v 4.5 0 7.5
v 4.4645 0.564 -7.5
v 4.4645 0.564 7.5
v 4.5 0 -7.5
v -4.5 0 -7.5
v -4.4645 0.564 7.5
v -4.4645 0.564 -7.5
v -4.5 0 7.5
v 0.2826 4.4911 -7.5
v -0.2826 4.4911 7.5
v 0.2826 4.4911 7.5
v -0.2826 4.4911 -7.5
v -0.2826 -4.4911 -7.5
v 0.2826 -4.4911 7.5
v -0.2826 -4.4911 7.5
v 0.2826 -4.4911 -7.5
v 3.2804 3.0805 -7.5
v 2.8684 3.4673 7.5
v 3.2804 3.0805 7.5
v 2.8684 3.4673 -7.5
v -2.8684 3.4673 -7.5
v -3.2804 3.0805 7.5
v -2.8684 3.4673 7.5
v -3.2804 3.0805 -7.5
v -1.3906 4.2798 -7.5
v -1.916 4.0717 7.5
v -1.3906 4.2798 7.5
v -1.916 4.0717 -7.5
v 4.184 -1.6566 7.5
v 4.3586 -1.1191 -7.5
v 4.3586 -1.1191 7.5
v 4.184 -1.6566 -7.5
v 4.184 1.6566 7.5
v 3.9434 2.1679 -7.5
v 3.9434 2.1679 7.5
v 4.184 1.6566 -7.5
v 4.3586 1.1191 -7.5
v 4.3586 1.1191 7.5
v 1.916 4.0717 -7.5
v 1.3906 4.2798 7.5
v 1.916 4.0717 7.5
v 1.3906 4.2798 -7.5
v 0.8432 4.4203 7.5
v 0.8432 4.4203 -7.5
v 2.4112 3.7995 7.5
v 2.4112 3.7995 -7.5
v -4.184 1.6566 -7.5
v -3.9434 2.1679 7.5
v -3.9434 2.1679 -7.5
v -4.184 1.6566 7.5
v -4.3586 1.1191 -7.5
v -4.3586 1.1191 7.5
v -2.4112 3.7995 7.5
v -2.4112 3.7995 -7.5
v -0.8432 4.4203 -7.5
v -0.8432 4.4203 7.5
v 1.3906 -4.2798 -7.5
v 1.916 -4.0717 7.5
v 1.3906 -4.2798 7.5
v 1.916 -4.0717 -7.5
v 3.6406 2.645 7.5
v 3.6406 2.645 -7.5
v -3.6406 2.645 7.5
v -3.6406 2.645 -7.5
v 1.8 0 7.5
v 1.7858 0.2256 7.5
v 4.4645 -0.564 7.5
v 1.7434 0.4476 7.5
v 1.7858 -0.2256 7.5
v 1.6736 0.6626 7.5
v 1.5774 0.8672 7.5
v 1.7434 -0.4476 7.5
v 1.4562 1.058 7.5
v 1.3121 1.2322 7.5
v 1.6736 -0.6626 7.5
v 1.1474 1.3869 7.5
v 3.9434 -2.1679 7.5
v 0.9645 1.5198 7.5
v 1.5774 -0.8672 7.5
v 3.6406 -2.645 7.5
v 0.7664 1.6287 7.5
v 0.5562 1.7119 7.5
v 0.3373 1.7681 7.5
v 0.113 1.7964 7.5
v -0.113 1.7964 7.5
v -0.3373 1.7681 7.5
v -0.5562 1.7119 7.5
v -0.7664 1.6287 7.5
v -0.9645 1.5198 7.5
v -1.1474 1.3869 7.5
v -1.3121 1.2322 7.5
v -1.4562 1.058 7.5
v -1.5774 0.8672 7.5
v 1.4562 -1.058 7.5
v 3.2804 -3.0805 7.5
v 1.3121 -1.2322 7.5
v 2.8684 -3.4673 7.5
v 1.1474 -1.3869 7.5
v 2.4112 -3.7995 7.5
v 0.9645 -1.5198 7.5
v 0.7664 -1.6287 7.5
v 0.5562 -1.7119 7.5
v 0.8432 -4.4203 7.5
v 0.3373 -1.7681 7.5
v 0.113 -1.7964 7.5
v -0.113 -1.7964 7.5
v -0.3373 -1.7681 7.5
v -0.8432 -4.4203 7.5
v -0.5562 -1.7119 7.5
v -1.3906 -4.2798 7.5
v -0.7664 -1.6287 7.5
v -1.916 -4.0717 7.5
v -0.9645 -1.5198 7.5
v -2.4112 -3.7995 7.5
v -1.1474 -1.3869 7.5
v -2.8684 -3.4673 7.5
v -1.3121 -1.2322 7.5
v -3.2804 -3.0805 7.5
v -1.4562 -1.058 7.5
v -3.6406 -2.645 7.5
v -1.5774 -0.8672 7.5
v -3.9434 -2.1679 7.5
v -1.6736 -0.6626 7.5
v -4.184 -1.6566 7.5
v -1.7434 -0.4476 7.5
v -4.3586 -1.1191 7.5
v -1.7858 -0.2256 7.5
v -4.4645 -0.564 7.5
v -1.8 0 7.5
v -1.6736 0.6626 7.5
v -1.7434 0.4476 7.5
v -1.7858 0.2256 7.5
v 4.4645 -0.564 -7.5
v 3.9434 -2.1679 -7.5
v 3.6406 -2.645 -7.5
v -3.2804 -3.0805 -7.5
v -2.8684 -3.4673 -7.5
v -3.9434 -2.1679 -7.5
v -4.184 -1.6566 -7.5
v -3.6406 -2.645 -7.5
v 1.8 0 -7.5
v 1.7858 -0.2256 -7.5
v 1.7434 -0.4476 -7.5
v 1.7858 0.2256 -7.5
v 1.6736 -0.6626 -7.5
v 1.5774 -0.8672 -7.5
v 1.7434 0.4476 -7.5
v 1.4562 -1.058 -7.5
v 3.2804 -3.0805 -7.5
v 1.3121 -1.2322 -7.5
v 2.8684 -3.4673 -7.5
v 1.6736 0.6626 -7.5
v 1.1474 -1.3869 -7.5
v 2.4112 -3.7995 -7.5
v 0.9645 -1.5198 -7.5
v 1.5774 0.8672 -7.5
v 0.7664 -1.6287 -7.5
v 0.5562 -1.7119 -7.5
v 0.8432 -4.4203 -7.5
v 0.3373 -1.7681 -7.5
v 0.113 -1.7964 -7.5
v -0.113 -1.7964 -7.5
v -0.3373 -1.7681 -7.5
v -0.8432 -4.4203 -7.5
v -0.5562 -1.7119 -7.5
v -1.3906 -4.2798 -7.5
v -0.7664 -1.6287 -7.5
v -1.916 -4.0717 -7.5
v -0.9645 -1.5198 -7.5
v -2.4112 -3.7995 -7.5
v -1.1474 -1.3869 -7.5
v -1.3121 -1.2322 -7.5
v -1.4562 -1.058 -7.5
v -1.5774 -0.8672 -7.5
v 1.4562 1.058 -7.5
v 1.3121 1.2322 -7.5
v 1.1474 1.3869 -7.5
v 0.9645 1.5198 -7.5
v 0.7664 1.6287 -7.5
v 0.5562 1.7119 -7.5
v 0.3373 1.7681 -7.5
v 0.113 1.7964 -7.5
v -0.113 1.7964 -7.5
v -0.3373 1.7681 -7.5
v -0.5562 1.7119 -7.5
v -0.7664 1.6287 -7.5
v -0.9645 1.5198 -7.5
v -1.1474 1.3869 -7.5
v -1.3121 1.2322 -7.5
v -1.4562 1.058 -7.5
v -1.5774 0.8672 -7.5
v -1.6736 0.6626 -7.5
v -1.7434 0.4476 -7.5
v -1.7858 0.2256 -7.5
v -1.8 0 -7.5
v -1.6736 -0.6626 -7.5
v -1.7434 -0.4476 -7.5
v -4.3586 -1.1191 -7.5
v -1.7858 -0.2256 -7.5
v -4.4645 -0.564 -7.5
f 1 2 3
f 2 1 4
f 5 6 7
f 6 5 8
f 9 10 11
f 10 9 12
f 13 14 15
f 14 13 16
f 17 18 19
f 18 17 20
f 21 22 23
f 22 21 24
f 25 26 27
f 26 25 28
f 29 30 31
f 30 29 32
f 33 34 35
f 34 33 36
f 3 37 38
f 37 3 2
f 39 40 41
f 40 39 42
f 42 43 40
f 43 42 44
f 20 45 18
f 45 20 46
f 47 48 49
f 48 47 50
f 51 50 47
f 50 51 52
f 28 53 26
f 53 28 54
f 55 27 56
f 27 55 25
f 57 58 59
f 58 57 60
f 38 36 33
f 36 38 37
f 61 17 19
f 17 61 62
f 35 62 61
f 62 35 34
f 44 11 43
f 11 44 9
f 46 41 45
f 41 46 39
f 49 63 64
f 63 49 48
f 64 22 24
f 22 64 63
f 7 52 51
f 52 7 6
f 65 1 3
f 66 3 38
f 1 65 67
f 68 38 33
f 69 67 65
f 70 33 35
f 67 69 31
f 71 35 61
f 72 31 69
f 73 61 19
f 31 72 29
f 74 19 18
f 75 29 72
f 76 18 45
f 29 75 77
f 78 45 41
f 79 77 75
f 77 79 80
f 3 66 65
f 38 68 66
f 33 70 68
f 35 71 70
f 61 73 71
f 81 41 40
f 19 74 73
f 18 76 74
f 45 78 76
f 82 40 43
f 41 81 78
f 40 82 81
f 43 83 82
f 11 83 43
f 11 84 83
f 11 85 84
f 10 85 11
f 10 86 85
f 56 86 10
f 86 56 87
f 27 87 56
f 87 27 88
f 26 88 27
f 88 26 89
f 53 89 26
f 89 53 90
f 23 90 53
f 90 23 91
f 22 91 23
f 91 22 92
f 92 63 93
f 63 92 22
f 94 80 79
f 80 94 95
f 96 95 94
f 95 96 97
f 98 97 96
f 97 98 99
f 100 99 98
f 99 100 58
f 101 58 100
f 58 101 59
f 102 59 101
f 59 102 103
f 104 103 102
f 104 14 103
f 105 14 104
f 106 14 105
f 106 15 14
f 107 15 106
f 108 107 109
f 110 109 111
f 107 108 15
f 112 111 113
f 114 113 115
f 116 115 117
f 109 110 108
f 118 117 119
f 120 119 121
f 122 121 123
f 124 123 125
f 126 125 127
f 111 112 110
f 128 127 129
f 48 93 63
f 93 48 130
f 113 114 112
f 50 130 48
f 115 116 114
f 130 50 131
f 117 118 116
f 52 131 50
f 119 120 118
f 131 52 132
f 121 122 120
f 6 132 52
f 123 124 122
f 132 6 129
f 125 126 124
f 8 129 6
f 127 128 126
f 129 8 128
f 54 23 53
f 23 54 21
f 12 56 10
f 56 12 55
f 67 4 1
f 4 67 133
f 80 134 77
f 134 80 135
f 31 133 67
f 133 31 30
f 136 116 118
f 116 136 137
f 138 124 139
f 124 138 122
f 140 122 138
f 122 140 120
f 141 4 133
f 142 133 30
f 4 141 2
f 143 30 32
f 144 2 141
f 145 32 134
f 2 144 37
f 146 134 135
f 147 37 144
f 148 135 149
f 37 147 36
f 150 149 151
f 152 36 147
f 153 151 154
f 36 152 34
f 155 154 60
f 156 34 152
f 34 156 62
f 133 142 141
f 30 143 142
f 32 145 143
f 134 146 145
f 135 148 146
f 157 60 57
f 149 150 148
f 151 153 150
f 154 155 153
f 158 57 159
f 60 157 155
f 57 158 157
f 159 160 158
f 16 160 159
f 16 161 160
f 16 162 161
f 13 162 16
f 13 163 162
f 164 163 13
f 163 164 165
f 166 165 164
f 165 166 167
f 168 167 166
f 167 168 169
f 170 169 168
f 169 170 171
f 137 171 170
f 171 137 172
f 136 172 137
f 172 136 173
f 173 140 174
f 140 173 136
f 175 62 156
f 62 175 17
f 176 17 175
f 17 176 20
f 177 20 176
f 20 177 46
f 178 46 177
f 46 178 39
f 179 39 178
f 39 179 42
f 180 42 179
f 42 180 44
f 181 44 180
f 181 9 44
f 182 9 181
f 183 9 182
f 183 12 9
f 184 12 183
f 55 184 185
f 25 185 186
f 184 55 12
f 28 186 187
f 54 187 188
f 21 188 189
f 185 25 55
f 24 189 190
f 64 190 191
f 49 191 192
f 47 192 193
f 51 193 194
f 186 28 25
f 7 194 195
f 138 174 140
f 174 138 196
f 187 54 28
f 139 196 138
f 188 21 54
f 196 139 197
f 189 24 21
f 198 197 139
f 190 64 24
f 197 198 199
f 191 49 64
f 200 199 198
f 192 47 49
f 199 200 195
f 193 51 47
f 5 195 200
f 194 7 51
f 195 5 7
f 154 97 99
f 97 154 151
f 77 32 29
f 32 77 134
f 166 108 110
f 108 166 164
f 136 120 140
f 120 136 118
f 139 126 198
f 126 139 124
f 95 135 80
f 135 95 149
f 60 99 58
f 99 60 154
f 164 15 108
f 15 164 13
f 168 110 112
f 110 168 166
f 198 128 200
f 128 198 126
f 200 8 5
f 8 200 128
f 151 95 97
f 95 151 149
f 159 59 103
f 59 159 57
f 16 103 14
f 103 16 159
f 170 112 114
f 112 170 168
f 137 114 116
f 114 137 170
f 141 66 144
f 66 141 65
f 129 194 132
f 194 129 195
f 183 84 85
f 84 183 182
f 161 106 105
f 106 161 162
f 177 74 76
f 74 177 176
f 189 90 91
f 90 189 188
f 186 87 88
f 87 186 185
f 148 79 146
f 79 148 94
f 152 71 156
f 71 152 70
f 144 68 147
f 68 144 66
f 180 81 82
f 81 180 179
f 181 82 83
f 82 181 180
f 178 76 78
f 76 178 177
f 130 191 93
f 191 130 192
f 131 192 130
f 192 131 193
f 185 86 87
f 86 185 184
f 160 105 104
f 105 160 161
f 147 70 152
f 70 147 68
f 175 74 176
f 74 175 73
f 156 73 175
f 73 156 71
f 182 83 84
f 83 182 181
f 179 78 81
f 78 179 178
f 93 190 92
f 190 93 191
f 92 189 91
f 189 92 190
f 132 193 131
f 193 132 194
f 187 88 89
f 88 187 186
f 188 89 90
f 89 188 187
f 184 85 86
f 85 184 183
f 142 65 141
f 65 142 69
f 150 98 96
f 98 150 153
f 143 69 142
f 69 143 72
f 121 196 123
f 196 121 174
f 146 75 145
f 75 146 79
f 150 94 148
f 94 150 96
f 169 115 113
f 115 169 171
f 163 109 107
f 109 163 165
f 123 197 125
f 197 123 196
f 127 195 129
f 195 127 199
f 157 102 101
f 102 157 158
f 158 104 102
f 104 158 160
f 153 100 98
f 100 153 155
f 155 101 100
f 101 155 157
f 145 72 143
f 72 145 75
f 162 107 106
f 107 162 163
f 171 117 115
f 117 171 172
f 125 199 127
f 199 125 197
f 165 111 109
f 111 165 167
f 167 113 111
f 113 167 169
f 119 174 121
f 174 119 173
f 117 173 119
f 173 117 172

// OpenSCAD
$fn = 50;


difference() {
	union() {
		translate(v = [0, 0, -7.5000000000]) {
			cylinder(h = 15, r = 4.5000000000);
		}
	}
	union() {
		#translate(v = [0, 0, -100.0000000000]) {
			cylinder(h = 200, r = 1.8000000000);
		}
	}
}
